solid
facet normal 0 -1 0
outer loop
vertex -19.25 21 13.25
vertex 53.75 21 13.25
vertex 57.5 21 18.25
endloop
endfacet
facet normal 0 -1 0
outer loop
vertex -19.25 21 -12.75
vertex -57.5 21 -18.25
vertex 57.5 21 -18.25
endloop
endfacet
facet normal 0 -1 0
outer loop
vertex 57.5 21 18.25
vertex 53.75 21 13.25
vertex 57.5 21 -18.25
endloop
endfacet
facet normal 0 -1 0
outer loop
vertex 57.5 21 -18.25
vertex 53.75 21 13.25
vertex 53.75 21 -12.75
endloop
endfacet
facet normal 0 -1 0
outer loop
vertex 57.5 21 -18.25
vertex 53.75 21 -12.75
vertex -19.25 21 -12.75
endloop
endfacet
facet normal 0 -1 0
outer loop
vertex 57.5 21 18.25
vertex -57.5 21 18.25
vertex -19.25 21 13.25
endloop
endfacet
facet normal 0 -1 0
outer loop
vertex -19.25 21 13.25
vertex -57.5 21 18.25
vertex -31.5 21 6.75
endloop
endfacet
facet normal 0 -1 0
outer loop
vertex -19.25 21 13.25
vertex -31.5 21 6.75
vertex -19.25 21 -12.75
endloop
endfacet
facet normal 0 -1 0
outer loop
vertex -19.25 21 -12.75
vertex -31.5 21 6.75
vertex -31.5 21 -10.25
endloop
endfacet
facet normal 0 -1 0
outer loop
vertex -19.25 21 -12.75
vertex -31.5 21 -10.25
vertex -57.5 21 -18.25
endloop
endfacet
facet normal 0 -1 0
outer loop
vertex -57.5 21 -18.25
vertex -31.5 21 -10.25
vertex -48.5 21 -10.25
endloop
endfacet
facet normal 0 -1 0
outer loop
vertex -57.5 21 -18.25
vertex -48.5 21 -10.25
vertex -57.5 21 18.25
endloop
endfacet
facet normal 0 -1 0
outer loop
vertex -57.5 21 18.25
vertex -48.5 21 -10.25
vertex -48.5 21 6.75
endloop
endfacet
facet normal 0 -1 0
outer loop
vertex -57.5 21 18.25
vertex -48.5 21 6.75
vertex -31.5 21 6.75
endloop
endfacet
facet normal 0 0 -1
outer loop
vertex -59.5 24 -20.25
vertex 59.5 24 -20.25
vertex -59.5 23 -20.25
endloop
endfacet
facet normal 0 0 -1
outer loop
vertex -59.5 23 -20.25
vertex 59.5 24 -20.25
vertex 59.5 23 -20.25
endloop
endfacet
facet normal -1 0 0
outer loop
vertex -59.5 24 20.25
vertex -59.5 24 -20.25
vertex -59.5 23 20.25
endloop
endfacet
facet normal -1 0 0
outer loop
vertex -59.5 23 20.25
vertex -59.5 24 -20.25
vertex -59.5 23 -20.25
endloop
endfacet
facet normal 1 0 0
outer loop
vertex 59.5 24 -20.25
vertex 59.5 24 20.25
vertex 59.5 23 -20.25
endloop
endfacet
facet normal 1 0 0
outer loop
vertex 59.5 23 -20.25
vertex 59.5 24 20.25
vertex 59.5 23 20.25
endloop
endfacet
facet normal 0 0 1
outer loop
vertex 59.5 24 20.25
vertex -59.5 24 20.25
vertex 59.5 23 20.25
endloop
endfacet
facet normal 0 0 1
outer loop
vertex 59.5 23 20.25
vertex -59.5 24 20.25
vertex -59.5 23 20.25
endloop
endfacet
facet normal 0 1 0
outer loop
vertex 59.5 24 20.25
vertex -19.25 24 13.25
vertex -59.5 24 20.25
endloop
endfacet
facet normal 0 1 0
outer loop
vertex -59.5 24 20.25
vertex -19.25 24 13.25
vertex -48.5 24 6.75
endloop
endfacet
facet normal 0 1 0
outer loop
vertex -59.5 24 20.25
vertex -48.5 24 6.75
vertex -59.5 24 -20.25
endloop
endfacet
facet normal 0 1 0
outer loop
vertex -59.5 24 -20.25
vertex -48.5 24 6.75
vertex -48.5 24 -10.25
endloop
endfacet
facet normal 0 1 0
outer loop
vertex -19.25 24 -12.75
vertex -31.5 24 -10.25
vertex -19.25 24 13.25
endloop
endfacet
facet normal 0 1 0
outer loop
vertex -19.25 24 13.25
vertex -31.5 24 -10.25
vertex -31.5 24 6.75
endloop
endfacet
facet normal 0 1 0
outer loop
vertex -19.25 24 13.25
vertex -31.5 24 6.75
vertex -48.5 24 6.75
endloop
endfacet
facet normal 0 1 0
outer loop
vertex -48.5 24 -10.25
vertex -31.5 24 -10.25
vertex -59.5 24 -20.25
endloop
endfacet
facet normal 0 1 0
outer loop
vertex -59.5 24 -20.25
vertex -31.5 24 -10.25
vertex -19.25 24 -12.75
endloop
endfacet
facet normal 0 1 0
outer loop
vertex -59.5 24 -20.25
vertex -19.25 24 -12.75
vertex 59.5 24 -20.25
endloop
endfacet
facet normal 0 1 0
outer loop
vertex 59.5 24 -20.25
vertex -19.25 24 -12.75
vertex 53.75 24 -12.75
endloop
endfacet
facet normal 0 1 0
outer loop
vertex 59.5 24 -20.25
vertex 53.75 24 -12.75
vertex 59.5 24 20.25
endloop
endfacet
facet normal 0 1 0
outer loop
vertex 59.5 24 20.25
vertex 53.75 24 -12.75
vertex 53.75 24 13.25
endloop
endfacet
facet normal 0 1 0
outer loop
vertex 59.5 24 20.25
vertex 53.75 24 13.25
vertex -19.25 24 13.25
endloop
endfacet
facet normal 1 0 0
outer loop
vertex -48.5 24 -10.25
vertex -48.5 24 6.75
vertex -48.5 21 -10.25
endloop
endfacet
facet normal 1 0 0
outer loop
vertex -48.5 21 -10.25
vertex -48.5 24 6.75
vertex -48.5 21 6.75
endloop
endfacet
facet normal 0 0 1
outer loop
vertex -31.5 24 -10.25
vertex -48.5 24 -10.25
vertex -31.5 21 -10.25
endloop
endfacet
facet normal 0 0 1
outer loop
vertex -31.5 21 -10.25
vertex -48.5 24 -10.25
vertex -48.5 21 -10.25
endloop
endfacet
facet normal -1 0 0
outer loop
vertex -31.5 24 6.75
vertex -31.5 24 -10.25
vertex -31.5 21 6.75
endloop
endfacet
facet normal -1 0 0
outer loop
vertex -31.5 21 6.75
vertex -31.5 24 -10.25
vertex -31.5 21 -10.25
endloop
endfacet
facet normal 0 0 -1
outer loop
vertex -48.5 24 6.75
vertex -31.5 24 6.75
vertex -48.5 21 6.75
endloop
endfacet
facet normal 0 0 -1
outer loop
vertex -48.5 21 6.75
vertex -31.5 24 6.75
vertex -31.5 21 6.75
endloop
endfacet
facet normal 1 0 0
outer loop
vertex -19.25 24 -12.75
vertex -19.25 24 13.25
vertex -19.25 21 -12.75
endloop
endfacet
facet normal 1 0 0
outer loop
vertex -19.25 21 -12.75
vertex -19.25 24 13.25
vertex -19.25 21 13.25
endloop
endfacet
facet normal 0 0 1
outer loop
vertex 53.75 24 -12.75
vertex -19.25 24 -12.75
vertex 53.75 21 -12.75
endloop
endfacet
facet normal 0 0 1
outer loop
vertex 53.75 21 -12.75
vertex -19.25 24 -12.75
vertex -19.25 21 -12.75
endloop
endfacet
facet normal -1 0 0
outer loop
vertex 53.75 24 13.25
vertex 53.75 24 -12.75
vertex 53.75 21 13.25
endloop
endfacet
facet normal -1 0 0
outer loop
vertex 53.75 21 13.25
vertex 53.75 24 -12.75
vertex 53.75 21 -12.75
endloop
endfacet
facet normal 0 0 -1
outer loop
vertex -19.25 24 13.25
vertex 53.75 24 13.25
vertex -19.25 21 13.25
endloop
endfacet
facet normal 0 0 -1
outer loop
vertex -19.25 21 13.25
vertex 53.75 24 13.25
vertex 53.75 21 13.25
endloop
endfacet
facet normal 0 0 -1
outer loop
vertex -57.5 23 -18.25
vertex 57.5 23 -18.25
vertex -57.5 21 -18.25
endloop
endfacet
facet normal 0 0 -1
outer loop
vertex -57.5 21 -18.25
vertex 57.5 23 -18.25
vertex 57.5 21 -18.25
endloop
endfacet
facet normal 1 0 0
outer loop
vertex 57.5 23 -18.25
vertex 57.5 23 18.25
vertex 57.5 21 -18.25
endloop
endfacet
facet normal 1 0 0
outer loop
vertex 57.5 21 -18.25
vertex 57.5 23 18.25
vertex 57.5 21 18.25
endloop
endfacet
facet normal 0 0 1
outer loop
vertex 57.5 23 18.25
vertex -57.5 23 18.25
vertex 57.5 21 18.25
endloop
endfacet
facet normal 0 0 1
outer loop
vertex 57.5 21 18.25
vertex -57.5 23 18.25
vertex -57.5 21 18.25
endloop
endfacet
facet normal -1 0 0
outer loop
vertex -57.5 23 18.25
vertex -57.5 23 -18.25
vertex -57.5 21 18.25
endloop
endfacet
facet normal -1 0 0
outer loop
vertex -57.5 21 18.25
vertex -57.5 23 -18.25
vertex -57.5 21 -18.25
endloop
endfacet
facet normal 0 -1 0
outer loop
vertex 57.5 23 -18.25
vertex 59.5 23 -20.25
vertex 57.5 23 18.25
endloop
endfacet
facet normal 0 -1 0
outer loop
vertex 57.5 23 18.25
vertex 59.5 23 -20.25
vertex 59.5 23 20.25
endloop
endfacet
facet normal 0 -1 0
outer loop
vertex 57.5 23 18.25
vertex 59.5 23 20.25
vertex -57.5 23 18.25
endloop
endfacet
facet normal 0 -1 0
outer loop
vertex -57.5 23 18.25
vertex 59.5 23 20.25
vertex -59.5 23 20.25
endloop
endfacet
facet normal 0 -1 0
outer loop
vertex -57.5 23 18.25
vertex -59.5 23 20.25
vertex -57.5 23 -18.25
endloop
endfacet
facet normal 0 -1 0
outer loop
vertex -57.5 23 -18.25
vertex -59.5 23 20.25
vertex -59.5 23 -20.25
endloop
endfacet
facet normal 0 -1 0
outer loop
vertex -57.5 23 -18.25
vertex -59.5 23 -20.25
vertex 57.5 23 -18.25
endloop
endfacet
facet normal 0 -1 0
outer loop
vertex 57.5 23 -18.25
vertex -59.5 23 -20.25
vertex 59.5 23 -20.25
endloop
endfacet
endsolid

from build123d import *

# Parameters (mm, degrees)
SKETCH1_W                = 115
SKETCH1_H                = 36.5
BOSS_EXTRUDE1_DEPTH      = 1
BOSS_EXTRUDE2_DEPTH      = 20
BOSS_EXTRUDE2_DEPTH_BACK = 1
SKETCH2_W                = 119
SKETCH2_H                = 40.5
SKETCH2_W_2              = 115
SKETCH2_H_2              = 36.5
SKETCH3_R                = 1.5
SKETCH3_W                = 6
SKETCH3_H                = 6
BOSS_EXTRUDE3_DEPTH      = 3
SKETCH4_R                = 1.5
SKETCH4_W                = 5.5
SKETCH4_H                = 6.495155074
BOSS_EXTRUDE4_DEPTH      = 8
SKETCH5_W                = 15
SKETCH5_H                = 10
CUT_EXTRUDE1_DEPTH       = 8
SKETCH6_W                = 46
SKETCH6_H                = 7.792677535
CUT_EXTRUDE2_DEPTH       = 8
SKETCH7_W                = 10.3
SKETCH7_H                = 10.3
CUT_EXTRUDE3_DEPTH       = 8
SKETCH8_W                = 15
SKETCH8_H                = 5
CUT_EXTRUDE4_DEPTH       = 8
SKETCH9_W                = 119
SKETCH9_H                = 40.5
SKETCH9_W_2              = 17
SKETCH9_H_2              = 17
SKETCH9_W_3              = 73
SKETCH9_H_3              = 26
BOSS_EXTRUDE5_DEPTH      = 3
SKETCH10_W               = 119
SKETCH10_H               = 40.5
SKETCH10_W_2             = 115
SKETCH10_H_2             = 36.5
CUT_EXTRUDE5_DEPTH       = 2


with BuildPart() as part:
    # Sketch1 → Boss-Extrude1 (new body)
    with BuildSketch(Plane(origin=(0, 0, 0), x_dir=(1, 0, 0), z_dir=(0, 1, 0))):
        Rectangle(SKETCH1_W, SKETCH1_H)
    extrude(amount=BOSS_EXTRUDE1_DEPTH)


with BuildPart() as body_2:
    # Sketch2 → Boss-Extrude2 (new, two sides: drawn at the far end of the back side and taken through both)
    with BuildSketch(Plane(origin=(0, 1, 0), x_dir=(1, 0, 0), z_dir=(0, 1, 0)).offset(-BOSS_EXTRUDE2_DEPTH_BACK)):
        Rectangle(SKETCH2_W, SKETCH2_H)
        Rectangle(SKETCH2_W_2, SKETCH2_H_2, mode=Mode.SUBTRACT)
    extrude(amount=BOSS_EXTRUDE2_DEPTH + BOSS_EXTRUDE2_DEPTH_BACK)

    # Intersect1: read off the stored shape, not the designer's step
    # Intersect1: union part
    add(part.part)

    # Sketch3 → Boss-Extrude3 (add)
    # profile 1 of 4: a face of its own
    with BuildSketch(Plane(origin=(0, 1, 0), x_dir=(1, 0, 0), z_dir=(0, 1, 0))):
        Polygon((-51.5, 7.25), (-51.5, 13.25), (-54, 13.25), (-57.5, 13.25), (-57.5, 9.75), (-57.5, 7.25), align=None)
        with Locations(Location((-54, 9.75, 0), (0, 0, 270))):
            Circle(SKETCH3_R, mode=Mode.SUBTRACT)
    # profile 2 of 4: a face of its own
    with BuildSketch(Plane(origin=(0, 1, 0), x_dir=(1, 0, 0), z_dir=(0, 1, 0))):
        with Locations((-25.5, 10.25)):
            Rectangle(SKETCH3_W, SKETCH3_H)
        with Locations(Location((-26, 9.75, 0), (0, 0, 90))):
            Circle(SKETCH3_R, mode=Mode.SUBTRACT)
    # profile 3 of 4: a face of its own
    with BuildSketch(Plane(origin=(0, 1, 0), x_dir=(1, 0, 0), z_dir=(0, 1, 0))):
        with Locations((-25.5, -10.25)):
            Rectangle(SKETCH3_W, SKETCH3_H)
        with Locations(Location((-26, -9.75, 0), (0, 0, 270))):
            Circle(SKETCH3_R, mode=Mode.SUBTRACT)
    # profile 4 of 4: a face of its own
    with BuildSketch(Plane(origin=(0, 1, 0), x_dir=(1, 0, 0), z_dir=(0, 1, 0))):
        with Locations((-54.5, -10.25)):
            Rectangle(SKETCH3_W, SKETCH3_H)
        with Locations(Location((-54, -9.75, 0), (0, 0, 90))):
            Circle(SKETCH3_R, mode=Mode.SUBTRACT)
    extrude(amount=BOSS_EXTRUDE3_DEPTH)

    # Sketch4 → Boss-Extrude4 (add)
    # profile 1 of 4: a face of its own
    with BuildSketch(Plane(origin=(0, 1, 0), x_dir=(1, 0, 0), z_dir=(0, 1, 0))):
        Polygon((-22.5, 13.25), (-22.5, 11.754844926), (-17, 11.754844926), (-17, 18.25), (-20, 18.25), (-22.5, 18.25), (-22.5, 15.25), align=None)
        with Locations(Location((-20, 15.25, 0), (0, 0, 270))):
            Circle(SKETCH4_R, mode=Mode.SUBTRACT)
    # profile 2 of 4: a face of its own
    with BuildSketch(Plane(origin=(0, 1, 0), x_dir=(1, 0, 0), z_dir=(0, 1, 0))):
        with Locations((-19.75, -15.002422463)):
            Rectangle(SKETCH4_W, SKETCH4_H)
        with Locations(Location((-20, -15.25, 0), (0, 0, 90))):
            Circle(SKETCH4_R, mode=Mode.SUBTRACT)
    # profile 3 of 4: a face of its own
    with BuildSketch(Plane(origin=(0, 1, 0), x_dir=(1, 0, 0), z_dir=(0, 1, 0))):
        with Locations((54.75, -15.002422463)):
            Rectangle(SKETCH4_W, SKETCH4_H)
        with Locations(Location((55, -15.25, 0), (0, 0, 270))):
            Circle(SKETCH4_R, mode=Mode.SUBTRACT)
    # profile 4 of 4: a face of its own
    with BuildSketch(Plane(origin=(0, 1, 0), x_dir=(1, 0, 0), z_dir=(0, 1, 0))):
        with Locations((54.75, 15.002422463)):
            Rectangle(SKETCH4_W, SKETCH4_H)
        with Locations(Location((55, 15.25, 0), (0, 0, 90))):
            Circle(SKETCH4_R, mode=Mode.SUBTRACT)
    extrude(amount=BOSS_EXTRUDE4_DEPTH)

    # Sketch5 → Cut-Extrude1 (cut)
    with BuildSketch(Plane.ZY.offset(59.5)):
        with Locations((0, 11.525411997)):
            Rectangle(SKETCH5_W, SKETCH5_H)
    extrude(amount=-CUT_EXTRUDE1_DEPTH, mode=Mode.SUBTRACT)

    # Sketch6 → Cut-Extrude2 (cut)
    with BuildSketch(Plane(origin=(0, 0, -20.25), x_dir=(-1, 0, 0), z_dir=(0, 0, -1))):
        with Locations((-6.5, 11.396338768)):
            Rectangle(SKETCH6_W, SKETCH6_H)
    extrude(amount=-CUT_EXTRUDE2_DEPTH, mode=Mode.SUBTRACT)

    # Sketch7 → Cut-Extrude3 (cut)
    with BuildSketch(Plane.XY.offset(20.25)):
        with Locations((-49.05, 10.55)):
            Rectangle(SKETCH7_W, SKETCH7_H)
    extrude(amount=-CUT_EXTRUDE3_DEPTH, mode=Mode.SUBTRACT)

    # Sketch8 → Cut-Extrude4 (cut)
    with BuildSketch(Plane(origin=(0, 0, -20.25), x_dir=(-1, 0, 0), z_dir=(0, 0, -1))):
        with Locations((40.794043984, 3.5)):
            Rectangle(SKETCH8_W, SKETCH8_H)
    extrude(amount=-CUT_EXTRUDE4_DEPTH, mode=Mode.SUBTRACT)


with BuildPart() as body_2_2:
    # Sketch9 → Boss-Extrude5 (new body)
    with BuildSketch(Plane(origin=(0, 21, 0), x_dir=(1, 0, 0), z_dir=(0, 1, 0))):
        Rectangle(SKETCH9_W, SKETCH9_H)
        with Locations((-40, 1.75)):
            Rectangle(SKETCH9_W_2, SKETCH9_H_2, mode=Mode.SUBTRACT)
        with Locations((17.25, -0.25)):
            Rectangle(SKETCH9_W_3, SKETCH9_H_3, mode=Mode.SUBTRACT)
    extrude(amount=BOSS_EXTRUDE5_DEPTH)

    # Sketch10 → Cut-Extrude5 (cut)
    with BuildSketch(Plane.XZ.offset(-21)):
        Rectangle(SKETCH10_W, SKETCH10_H)
        Rectangle(SKETCH10_W_2, SKETCH10_H_2, mode=Mode.SUBTRACT)
    extrude(amount=-CUT_EXTRUDE5_DEPTH, mode=Mode.SUBTRACT)


solid = body_2_2.part
